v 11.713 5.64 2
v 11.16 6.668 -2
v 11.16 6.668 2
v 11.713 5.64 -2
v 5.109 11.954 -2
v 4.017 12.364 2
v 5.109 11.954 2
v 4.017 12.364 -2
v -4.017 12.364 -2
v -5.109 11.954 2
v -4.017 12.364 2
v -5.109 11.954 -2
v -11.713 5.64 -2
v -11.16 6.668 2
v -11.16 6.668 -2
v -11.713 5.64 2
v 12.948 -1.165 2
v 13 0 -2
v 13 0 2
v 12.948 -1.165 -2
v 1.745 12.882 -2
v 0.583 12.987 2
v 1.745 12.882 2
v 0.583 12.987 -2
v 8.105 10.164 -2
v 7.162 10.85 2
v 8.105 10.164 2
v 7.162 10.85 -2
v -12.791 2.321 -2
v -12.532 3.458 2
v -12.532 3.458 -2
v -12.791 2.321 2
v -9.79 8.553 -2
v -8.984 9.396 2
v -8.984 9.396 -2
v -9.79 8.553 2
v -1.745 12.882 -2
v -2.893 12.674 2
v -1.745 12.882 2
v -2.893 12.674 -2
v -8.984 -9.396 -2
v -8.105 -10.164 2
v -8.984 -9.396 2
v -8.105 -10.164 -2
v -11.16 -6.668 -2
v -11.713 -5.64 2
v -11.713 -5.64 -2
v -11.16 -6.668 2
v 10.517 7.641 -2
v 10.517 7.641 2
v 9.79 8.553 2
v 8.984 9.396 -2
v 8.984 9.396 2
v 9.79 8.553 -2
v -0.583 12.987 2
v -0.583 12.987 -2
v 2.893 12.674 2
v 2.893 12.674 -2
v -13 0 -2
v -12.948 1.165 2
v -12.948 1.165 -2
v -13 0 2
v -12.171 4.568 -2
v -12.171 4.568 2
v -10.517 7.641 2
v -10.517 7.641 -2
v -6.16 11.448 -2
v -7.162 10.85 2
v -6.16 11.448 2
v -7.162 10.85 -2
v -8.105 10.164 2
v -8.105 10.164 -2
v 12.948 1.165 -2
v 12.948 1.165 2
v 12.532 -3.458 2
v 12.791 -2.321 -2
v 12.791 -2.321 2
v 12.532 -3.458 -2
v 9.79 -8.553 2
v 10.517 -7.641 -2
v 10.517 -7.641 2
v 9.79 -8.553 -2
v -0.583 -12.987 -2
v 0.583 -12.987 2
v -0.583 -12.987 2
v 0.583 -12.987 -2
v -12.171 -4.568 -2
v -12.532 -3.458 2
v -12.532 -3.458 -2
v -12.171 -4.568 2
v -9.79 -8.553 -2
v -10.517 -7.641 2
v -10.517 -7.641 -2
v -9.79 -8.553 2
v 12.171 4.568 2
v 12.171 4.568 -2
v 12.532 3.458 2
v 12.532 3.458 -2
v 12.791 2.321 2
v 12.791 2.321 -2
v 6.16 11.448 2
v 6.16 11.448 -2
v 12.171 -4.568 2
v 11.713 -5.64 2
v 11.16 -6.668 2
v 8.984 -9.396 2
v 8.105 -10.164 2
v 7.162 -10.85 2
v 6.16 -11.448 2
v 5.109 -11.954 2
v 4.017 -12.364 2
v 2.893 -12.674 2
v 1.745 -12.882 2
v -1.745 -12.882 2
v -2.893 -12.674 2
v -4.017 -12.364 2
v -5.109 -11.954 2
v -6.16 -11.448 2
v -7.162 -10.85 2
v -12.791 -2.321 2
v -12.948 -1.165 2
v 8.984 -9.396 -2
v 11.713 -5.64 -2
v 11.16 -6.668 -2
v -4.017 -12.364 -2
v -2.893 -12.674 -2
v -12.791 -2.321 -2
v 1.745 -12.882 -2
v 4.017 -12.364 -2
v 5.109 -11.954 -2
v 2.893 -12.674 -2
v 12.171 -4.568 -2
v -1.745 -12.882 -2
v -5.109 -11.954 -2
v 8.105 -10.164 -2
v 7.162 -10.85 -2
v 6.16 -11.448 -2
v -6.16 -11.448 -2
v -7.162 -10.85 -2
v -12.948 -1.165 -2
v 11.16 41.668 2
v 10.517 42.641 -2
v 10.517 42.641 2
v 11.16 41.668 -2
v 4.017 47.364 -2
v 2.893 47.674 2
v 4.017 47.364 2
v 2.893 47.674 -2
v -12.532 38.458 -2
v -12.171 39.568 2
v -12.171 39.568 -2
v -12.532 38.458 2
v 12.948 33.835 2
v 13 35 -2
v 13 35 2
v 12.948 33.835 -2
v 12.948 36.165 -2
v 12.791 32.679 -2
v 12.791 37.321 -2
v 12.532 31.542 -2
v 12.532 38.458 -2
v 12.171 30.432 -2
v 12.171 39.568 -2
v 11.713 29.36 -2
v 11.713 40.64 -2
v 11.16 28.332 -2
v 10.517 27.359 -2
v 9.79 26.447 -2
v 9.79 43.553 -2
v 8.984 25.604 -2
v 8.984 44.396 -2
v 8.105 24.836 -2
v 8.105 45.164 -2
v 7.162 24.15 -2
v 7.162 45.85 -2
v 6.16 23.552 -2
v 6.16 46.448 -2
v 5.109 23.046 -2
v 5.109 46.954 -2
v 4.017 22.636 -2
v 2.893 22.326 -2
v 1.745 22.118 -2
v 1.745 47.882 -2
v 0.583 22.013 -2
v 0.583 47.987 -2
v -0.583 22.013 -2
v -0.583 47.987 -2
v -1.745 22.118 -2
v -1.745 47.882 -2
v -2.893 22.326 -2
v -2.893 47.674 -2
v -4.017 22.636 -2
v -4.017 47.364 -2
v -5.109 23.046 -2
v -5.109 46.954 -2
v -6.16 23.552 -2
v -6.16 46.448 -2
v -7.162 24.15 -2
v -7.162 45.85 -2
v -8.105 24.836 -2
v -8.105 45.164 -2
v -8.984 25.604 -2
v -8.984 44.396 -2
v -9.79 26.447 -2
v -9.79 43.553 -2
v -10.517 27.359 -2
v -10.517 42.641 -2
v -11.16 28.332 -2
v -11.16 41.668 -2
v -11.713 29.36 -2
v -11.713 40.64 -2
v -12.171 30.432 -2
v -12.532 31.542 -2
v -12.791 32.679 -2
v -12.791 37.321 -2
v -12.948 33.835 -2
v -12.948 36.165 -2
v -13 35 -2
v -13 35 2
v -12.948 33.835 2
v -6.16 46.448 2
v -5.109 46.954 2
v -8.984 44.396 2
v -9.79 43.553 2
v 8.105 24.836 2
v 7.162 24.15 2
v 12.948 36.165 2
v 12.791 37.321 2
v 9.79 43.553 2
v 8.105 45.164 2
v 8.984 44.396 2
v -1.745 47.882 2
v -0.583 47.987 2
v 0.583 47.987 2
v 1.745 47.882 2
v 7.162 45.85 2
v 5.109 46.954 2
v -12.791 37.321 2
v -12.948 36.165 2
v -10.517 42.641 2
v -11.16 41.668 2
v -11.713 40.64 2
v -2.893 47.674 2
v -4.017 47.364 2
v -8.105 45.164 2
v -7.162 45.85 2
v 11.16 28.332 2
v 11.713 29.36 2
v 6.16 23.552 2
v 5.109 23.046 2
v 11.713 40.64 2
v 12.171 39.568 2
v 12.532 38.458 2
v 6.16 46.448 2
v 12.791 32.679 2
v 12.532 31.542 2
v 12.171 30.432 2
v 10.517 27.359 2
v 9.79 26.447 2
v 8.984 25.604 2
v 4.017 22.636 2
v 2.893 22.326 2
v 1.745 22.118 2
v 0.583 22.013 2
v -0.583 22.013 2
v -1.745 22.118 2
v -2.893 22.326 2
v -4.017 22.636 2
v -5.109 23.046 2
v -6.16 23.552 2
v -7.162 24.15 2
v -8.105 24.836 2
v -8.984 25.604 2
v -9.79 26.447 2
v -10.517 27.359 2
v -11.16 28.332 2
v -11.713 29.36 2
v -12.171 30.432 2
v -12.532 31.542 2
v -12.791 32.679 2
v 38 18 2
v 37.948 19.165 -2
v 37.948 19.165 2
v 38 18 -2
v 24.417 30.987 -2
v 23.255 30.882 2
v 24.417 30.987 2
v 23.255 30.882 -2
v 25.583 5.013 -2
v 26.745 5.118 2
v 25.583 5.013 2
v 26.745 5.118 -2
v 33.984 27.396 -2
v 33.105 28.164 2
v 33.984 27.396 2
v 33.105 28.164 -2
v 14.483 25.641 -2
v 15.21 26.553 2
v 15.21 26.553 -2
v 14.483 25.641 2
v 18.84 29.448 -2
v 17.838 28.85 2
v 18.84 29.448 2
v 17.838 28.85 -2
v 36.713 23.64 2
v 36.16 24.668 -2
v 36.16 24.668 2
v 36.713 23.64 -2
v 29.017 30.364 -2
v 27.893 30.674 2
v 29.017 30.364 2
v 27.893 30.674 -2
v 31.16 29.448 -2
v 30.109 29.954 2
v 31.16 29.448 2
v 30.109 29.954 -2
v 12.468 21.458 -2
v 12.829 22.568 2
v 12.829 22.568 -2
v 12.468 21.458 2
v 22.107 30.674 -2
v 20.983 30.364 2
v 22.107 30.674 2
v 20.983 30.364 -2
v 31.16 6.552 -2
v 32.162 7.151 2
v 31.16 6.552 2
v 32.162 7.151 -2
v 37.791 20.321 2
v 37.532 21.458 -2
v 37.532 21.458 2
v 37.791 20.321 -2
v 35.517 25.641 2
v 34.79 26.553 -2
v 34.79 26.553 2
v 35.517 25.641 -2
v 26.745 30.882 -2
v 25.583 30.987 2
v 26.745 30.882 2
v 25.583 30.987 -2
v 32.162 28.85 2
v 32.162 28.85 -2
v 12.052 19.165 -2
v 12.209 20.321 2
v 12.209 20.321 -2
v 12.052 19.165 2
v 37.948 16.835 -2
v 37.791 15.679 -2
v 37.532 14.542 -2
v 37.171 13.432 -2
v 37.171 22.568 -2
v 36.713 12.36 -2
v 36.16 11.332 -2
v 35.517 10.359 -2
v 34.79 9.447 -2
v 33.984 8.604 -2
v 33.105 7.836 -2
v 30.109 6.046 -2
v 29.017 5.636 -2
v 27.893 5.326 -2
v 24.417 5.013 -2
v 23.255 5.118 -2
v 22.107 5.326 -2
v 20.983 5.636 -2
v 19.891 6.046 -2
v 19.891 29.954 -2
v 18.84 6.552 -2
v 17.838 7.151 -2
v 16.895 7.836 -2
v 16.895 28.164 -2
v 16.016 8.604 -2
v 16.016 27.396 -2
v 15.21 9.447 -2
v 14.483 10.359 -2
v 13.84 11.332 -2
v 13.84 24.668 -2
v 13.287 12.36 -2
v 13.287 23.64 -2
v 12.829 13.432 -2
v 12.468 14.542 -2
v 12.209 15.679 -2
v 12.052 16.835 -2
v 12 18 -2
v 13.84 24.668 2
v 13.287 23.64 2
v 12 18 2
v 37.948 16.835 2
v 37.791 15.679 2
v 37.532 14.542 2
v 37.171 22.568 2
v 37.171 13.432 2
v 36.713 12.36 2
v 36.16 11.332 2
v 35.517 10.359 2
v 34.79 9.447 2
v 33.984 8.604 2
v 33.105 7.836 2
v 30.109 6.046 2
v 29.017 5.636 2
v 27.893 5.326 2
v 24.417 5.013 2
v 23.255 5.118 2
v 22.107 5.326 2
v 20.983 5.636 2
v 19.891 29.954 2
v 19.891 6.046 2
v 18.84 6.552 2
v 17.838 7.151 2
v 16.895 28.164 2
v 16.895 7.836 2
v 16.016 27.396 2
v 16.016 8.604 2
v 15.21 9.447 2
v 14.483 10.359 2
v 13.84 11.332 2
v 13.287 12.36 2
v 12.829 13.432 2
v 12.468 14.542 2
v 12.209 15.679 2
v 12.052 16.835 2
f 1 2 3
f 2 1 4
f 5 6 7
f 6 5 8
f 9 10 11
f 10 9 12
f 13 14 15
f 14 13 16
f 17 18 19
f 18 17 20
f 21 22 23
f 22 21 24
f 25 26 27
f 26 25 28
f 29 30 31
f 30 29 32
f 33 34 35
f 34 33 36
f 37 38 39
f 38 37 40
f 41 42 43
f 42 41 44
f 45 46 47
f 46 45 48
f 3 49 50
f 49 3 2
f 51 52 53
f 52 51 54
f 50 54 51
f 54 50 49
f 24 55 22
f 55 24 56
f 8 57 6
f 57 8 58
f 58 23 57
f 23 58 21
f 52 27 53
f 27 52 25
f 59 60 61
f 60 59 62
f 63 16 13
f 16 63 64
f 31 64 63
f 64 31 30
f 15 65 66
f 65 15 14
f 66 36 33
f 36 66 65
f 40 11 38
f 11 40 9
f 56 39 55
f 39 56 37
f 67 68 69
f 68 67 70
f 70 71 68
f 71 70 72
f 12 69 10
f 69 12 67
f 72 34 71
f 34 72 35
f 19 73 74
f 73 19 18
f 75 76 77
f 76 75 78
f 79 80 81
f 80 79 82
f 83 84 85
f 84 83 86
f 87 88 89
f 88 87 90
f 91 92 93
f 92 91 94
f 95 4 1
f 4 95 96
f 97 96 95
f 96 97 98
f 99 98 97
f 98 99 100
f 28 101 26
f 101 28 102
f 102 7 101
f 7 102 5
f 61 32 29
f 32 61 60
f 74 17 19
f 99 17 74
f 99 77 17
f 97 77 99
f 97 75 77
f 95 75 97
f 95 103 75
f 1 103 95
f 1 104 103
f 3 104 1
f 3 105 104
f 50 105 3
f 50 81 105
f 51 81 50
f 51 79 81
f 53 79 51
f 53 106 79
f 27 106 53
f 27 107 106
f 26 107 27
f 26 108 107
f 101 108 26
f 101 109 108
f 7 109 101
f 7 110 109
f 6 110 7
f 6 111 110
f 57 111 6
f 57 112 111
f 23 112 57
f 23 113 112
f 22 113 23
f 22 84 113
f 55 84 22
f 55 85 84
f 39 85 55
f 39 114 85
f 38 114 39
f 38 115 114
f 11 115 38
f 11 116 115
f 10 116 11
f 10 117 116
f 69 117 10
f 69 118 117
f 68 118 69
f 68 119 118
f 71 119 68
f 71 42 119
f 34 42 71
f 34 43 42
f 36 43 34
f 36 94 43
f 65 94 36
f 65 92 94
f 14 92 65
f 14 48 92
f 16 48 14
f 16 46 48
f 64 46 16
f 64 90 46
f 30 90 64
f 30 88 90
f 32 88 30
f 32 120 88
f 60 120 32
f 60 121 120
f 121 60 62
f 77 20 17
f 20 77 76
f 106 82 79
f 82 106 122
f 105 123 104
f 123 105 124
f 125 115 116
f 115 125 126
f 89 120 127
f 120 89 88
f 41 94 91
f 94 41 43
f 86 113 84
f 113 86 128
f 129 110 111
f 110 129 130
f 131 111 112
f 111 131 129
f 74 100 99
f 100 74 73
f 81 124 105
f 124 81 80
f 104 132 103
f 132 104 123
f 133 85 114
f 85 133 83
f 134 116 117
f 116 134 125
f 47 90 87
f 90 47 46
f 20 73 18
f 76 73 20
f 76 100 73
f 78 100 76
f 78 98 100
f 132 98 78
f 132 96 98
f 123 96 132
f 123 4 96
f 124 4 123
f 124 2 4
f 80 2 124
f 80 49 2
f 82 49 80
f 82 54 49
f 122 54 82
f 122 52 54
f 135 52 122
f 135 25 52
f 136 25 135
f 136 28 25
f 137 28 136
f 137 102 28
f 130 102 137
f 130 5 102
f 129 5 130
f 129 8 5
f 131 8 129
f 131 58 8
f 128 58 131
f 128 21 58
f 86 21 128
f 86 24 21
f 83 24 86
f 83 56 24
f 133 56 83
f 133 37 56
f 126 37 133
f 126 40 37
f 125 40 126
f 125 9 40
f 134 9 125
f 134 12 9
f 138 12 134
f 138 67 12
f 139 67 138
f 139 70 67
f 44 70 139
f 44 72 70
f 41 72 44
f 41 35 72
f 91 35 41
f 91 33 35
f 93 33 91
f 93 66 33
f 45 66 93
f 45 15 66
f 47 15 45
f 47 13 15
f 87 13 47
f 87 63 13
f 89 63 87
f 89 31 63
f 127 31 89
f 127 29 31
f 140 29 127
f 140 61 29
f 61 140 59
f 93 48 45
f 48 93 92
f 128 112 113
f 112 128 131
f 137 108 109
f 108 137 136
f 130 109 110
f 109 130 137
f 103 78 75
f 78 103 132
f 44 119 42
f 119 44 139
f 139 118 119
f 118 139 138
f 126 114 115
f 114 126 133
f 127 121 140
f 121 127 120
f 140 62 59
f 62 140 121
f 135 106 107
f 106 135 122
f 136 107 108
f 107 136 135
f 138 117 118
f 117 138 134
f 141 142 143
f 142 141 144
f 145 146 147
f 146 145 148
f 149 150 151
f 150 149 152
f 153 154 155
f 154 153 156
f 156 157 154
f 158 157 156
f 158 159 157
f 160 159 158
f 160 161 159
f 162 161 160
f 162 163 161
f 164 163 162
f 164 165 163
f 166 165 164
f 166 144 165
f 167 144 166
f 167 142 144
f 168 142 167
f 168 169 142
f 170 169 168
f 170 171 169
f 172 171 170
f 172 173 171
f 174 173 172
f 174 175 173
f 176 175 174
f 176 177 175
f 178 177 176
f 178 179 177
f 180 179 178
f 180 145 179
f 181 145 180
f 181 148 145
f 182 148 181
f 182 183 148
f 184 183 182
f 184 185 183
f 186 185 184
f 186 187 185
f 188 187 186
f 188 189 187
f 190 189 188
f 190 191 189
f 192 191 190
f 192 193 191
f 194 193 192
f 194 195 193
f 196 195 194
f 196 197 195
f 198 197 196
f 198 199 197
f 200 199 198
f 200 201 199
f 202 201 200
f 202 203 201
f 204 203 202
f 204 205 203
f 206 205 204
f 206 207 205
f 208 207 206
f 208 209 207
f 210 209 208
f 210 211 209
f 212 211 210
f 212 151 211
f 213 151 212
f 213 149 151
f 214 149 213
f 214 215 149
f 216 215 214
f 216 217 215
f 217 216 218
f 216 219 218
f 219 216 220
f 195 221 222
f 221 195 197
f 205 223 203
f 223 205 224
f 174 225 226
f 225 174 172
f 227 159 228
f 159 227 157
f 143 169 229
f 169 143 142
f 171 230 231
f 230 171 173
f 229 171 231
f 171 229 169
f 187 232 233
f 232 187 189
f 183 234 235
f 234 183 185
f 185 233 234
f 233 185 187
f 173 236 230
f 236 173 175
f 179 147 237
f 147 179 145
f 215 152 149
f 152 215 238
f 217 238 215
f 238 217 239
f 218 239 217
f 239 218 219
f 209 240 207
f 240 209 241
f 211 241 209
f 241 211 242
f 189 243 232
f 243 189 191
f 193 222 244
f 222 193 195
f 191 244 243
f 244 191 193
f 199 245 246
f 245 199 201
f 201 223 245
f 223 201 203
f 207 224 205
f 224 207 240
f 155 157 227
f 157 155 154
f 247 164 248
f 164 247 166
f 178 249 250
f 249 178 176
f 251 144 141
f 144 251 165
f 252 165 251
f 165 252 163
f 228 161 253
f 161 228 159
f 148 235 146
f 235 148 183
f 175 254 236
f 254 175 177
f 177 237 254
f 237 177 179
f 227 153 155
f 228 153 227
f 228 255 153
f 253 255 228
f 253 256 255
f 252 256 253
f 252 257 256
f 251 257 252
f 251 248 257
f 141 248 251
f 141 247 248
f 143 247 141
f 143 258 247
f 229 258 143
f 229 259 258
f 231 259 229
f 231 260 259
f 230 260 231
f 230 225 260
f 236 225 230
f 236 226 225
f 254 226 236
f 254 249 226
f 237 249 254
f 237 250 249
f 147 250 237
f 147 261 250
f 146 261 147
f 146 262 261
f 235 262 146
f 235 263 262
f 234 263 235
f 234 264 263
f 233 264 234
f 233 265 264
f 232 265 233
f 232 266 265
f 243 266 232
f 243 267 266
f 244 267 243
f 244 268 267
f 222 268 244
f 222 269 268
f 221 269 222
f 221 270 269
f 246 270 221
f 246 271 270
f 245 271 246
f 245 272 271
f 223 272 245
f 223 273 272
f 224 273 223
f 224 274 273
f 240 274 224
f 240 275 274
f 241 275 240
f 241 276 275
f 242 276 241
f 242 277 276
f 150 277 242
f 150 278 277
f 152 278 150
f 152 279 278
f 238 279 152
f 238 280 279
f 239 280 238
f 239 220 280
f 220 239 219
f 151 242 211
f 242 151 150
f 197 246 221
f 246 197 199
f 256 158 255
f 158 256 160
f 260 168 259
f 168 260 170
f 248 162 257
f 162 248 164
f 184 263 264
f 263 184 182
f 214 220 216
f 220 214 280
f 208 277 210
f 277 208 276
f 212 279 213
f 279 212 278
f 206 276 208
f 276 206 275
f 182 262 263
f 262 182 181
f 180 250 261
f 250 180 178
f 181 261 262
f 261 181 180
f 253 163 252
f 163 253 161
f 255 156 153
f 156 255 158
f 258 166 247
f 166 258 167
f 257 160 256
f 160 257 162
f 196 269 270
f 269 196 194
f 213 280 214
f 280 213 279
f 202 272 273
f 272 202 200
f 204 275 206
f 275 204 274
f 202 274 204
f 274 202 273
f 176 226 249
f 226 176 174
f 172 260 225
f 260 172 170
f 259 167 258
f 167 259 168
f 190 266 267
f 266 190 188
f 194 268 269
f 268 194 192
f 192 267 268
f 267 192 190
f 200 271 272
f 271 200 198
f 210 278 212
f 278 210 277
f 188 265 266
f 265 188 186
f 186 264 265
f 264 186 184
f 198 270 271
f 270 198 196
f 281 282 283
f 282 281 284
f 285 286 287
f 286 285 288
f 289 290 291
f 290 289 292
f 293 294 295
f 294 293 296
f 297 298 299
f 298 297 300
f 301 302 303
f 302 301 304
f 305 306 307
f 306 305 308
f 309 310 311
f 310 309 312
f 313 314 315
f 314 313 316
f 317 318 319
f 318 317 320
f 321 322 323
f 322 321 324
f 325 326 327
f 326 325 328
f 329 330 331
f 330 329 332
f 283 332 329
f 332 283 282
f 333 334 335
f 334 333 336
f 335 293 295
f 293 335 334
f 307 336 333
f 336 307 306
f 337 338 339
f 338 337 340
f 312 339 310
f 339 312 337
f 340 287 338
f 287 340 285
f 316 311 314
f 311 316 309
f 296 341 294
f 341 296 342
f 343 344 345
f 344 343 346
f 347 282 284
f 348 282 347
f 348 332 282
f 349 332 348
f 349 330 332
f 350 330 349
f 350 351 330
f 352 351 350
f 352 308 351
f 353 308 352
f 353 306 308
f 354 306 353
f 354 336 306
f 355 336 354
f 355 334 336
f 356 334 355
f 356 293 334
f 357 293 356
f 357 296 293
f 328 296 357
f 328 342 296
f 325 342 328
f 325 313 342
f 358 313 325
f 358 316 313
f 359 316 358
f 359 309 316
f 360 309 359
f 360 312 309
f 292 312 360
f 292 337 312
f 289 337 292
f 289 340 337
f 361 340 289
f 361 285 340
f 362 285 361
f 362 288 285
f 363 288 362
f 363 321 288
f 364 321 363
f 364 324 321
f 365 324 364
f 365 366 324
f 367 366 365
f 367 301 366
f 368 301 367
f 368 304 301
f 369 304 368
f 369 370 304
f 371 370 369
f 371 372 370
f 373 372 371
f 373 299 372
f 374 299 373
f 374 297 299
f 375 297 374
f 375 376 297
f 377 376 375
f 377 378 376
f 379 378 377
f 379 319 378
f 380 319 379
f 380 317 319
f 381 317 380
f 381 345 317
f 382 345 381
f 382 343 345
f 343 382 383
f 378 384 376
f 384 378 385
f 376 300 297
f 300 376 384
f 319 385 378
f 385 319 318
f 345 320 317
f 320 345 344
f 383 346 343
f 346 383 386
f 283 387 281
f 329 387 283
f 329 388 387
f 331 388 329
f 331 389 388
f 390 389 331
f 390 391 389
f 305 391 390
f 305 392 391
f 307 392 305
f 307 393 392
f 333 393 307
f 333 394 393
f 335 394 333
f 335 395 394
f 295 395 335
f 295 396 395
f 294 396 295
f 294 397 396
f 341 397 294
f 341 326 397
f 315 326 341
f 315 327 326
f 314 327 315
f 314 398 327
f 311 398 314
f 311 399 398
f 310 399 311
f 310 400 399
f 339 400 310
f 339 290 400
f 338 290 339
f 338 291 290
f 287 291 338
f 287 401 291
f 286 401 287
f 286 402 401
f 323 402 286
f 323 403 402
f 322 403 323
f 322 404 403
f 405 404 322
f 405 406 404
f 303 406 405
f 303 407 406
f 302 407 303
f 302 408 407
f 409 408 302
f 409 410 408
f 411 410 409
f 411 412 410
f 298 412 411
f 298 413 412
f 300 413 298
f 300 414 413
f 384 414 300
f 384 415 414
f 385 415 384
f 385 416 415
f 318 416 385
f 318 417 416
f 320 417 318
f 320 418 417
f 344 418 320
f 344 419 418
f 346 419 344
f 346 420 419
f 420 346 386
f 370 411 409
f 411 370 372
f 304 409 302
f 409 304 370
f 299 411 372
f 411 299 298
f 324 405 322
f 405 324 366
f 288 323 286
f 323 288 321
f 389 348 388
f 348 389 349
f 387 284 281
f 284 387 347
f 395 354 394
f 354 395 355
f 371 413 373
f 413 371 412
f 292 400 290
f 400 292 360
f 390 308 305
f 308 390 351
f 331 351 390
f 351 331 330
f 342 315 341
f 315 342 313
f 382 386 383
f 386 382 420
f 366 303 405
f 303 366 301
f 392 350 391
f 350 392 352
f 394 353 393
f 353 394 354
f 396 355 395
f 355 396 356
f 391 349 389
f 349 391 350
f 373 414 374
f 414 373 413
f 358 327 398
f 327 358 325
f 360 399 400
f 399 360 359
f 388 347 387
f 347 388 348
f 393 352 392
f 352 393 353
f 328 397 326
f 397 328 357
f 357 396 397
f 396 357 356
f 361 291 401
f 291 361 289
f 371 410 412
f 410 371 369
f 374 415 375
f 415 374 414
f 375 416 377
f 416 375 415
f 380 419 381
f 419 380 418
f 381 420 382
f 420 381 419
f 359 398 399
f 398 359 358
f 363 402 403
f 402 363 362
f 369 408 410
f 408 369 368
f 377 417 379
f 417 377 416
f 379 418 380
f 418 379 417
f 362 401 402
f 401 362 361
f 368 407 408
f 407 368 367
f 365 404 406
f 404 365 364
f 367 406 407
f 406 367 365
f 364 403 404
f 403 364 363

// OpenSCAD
module bumper(){
    cylinder(r=13,h=4, $fn=70, center=true);
}

bumper();
translate([0,35,0])bumper();
translate([25,18,0])bumper();
